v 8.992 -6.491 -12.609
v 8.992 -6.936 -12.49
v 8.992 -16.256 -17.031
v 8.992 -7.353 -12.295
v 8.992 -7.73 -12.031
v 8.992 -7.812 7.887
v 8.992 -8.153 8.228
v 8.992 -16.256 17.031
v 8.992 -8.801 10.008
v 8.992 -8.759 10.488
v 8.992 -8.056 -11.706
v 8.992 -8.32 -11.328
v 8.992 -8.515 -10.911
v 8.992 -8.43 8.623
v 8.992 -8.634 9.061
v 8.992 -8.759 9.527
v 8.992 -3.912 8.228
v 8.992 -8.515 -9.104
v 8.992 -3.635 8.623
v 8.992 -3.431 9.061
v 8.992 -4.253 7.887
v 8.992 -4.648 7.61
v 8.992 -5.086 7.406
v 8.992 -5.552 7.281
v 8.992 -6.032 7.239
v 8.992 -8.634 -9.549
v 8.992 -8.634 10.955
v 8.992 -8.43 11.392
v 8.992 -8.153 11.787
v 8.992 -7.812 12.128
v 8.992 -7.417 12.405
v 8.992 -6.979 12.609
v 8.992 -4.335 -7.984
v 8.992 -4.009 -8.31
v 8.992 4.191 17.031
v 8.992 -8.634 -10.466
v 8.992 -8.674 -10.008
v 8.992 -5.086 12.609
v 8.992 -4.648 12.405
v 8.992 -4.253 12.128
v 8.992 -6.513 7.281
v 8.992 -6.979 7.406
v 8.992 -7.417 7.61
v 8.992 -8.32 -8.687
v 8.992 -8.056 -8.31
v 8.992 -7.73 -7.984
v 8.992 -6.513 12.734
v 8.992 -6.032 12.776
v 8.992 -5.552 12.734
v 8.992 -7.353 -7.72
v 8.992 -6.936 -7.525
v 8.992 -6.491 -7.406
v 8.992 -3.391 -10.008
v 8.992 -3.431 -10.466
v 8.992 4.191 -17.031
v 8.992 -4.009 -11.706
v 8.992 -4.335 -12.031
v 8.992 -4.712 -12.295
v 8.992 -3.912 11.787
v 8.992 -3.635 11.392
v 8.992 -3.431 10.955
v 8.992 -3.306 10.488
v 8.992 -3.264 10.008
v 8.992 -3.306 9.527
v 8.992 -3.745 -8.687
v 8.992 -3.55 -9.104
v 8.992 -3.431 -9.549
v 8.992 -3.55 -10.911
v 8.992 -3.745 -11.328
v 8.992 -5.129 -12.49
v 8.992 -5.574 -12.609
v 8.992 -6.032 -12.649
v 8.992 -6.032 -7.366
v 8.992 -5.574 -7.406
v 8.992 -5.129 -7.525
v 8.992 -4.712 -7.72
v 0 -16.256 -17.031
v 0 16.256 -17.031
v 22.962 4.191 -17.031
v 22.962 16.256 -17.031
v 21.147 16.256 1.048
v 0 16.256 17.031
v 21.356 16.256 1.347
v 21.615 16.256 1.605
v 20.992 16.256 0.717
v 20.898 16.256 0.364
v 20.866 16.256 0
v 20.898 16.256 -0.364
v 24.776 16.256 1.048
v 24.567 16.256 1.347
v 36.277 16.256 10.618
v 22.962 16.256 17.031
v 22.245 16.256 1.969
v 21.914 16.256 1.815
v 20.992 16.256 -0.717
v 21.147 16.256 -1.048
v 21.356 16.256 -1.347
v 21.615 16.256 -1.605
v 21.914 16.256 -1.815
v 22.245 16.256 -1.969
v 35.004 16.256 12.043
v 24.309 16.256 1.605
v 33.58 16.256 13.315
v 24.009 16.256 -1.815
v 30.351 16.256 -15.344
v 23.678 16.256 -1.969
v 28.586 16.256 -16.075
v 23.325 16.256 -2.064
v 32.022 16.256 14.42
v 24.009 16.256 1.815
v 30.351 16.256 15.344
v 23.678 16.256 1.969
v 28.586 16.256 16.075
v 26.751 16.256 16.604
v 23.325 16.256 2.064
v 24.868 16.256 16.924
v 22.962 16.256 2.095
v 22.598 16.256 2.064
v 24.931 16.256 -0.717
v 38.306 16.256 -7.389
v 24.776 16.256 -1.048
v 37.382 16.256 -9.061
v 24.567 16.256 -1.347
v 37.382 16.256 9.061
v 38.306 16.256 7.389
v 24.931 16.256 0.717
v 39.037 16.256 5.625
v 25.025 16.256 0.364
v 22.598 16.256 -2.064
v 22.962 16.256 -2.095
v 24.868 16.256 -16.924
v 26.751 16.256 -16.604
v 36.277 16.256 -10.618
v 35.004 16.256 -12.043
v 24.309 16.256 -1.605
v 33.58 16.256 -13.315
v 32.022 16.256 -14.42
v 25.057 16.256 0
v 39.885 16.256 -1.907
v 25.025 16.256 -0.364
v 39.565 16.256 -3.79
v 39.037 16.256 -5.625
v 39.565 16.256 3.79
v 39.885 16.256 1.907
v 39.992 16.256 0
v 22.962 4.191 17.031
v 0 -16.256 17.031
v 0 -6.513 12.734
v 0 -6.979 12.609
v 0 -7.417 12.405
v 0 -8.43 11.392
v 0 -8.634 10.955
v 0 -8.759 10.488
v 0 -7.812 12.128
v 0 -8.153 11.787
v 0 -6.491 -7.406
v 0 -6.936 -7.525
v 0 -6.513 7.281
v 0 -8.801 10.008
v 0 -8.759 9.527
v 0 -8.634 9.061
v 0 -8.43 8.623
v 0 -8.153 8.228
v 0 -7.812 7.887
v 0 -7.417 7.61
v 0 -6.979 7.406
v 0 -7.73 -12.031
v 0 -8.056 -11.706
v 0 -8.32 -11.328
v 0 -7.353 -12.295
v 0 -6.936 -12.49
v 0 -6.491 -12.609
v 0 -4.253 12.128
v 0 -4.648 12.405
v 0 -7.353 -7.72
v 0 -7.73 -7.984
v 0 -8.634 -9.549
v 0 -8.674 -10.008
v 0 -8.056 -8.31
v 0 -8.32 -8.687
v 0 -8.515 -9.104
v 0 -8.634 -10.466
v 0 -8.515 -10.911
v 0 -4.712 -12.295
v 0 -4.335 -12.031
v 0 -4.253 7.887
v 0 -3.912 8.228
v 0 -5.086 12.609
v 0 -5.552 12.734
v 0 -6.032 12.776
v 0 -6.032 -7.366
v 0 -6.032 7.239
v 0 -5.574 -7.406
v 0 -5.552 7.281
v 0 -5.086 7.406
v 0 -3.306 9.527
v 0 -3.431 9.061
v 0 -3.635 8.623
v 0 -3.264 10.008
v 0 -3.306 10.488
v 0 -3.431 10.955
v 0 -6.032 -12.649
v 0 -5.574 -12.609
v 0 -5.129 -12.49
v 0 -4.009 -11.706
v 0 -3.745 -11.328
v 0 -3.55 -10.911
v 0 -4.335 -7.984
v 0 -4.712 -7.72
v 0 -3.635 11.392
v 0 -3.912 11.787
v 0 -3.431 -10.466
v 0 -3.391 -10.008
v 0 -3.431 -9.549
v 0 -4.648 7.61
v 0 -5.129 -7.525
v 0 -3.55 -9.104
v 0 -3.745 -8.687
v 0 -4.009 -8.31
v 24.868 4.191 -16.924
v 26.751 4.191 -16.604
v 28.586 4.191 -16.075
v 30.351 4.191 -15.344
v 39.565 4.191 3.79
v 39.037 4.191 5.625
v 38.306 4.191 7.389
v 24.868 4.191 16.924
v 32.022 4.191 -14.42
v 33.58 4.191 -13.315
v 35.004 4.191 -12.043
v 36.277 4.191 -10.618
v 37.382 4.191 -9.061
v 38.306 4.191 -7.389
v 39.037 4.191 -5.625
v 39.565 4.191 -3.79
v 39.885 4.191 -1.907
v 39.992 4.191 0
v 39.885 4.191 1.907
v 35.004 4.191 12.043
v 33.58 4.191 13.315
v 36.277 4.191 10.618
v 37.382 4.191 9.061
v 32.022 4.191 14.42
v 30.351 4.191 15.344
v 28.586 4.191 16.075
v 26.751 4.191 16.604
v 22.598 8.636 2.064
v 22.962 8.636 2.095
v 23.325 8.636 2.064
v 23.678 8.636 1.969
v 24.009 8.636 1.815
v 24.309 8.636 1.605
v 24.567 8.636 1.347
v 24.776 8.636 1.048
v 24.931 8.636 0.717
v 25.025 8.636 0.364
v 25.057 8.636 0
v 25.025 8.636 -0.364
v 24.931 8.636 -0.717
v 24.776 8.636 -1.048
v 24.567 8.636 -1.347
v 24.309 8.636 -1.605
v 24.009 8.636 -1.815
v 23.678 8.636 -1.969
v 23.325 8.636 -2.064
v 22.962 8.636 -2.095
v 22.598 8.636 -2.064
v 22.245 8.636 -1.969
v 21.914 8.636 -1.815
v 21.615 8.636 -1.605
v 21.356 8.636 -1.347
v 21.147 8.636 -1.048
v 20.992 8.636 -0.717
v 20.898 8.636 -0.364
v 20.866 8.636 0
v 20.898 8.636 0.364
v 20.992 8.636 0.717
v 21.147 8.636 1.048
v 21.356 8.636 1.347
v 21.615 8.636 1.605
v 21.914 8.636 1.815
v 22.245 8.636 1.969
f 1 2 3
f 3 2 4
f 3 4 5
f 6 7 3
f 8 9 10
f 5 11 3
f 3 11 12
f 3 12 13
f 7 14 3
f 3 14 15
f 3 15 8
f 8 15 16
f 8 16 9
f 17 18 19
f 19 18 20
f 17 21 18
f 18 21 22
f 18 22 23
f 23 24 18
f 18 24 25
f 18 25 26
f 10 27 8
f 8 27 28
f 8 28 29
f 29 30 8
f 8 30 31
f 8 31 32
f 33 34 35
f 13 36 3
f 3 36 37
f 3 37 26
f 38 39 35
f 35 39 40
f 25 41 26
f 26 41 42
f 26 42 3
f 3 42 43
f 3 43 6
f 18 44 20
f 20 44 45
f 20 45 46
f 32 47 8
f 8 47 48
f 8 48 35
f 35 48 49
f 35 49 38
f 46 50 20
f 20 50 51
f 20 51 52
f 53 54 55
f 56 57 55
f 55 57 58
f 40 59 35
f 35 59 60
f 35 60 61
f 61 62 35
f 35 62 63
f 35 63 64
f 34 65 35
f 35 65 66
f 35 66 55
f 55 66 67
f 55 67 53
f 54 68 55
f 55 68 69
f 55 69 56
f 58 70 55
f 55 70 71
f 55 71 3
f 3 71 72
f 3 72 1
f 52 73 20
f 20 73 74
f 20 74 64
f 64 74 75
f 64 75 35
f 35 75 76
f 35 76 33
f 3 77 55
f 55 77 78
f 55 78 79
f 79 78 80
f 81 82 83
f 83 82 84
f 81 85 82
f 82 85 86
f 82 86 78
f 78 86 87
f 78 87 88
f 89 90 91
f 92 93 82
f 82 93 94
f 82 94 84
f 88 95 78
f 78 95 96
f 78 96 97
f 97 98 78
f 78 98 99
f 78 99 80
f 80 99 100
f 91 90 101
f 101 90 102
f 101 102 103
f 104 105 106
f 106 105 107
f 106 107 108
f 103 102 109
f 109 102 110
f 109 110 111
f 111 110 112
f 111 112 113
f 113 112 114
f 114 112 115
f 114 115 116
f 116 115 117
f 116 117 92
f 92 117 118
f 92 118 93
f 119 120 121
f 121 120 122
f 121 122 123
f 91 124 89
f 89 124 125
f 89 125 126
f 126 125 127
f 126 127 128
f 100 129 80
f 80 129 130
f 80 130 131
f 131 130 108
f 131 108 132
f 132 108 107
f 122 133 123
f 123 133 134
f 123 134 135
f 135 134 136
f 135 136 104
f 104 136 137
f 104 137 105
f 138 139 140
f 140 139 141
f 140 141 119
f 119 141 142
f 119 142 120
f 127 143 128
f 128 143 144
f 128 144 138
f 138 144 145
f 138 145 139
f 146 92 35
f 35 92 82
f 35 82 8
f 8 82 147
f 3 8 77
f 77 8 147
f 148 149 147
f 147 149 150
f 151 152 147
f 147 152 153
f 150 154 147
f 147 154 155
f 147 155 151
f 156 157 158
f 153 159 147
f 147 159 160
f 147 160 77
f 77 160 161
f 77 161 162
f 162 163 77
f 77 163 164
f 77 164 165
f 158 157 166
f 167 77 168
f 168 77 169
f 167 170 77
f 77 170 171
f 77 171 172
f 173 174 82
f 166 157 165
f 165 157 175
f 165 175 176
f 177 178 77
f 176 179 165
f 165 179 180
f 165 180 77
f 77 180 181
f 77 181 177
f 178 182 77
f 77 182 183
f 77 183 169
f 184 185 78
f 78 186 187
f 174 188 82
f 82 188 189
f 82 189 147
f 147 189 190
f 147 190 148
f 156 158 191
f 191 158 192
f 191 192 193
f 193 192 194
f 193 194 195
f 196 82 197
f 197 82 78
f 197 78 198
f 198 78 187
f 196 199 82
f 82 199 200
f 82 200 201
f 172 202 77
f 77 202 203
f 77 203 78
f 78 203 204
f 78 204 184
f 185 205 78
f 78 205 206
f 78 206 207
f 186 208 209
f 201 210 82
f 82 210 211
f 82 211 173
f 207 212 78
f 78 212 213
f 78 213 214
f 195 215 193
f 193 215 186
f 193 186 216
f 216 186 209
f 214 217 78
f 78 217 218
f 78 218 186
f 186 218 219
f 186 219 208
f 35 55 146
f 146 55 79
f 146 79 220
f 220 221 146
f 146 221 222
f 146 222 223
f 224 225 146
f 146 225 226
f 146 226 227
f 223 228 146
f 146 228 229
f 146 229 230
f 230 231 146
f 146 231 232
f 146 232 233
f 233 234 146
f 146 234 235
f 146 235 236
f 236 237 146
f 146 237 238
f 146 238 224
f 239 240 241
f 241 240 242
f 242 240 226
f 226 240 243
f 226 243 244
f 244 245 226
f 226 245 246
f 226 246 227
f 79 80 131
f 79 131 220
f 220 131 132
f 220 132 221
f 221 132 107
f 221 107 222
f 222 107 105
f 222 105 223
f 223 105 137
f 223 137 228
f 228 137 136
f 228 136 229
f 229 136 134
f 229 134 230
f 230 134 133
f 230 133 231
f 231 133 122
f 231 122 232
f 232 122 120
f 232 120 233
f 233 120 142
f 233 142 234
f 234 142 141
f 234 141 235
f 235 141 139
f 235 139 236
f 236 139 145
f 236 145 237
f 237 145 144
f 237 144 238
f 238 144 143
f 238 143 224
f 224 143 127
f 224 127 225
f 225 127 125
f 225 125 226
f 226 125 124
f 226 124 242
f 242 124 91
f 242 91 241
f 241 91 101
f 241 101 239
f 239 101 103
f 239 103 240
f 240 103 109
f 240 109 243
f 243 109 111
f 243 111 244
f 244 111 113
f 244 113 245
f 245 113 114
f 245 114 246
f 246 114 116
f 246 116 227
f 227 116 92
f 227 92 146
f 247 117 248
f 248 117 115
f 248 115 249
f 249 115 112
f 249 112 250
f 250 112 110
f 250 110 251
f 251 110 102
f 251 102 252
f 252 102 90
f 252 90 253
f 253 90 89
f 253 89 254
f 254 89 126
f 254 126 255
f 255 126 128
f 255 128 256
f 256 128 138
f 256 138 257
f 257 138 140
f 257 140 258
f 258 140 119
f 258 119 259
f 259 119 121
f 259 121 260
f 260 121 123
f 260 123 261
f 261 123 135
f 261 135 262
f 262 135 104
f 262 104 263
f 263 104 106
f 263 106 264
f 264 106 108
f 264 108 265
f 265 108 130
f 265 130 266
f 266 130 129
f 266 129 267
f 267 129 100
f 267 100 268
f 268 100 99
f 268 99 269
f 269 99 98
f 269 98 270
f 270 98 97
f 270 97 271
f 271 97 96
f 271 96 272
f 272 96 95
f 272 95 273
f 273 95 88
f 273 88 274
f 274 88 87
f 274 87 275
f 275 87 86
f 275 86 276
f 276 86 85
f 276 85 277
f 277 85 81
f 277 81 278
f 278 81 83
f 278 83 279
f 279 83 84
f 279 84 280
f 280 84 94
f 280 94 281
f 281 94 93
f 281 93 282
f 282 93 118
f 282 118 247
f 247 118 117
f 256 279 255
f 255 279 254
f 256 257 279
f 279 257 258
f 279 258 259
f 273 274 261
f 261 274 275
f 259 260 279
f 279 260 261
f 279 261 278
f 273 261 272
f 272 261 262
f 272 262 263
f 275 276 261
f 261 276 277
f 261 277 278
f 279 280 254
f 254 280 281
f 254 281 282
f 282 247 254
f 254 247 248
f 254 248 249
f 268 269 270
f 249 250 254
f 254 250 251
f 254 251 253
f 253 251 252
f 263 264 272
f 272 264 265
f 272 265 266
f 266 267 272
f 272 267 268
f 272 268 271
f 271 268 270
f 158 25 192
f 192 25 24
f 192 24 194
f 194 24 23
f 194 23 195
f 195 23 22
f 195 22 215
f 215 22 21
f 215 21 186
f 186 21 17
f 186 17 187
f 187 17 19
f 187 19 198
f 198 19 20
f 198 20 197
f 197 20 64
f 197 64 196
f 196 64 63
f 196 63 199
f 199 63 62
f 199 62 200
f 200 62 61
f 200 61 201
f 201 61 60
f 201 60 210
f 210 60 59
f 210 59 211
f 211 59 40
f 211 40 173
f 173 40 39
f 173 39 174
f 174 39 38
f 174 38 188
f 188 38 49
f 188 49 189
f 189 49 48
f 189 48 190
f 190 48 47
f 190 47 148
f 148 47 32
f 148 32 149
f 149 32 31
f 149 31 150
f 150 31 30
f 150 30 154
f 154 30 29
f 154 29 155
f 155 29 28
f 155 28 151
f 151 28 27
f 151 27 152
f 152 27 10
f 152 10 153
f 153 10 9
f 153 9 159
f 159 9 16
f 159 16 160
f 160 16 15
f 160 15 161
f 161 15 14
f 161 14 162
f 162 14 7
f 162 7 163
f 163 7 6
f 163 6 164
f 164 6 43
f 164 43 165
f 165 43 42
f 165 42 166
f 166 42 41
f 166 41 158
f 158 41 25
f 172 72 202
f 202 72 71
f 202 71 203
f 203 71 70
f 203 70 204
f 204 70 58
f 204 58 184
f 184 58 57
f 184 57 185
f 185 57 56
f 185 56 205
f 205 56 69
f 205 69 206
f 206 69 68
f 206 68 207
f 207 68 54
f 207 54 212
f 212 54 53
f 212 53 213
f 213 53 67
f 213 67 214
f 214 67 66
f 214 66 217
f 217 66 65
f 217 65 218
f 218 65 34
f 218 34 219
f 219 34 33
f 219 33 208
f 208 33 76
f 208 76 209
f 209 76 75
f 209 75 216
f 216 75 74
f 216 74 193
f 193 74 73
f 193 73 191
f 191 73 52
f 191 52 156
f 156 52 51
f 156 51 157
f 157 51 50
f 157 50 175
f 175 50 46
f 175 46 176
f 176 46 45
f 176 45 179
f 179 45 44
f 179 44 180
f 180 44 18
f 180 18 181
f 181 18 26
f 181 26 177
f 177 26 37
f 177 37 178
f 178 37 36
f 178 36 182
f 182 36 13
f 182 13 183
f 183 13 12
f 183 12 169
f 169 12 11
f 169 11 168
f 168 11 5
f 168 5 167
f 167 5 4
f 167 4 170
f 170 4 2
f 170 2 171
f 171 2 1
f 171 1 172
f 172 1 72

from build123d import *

# Parameters (mm, degrees)
SKETCH1_W           = 34.0614
SKETCH1_H           = 32.512
BOSS_EXTRUDE1_DEPTH = 8.9916
SKETCH2_W           = 34.0614
SKETCH2_H           = 12.065
BOSS_EXTRUDE2_DEPTH = 13.97
SKETCH3_W           = 17.0307
SKETCH3_H           = 12.065
REVOLVE1_ANGLE      = 180
SKETCH4_R           = 2.0955
CUT_EXTRUDE1_DEPTH  = 7.62
CUT_EXTRUDE2_REACH  = 10.992
SKETCH5_R           = 2.7686
SKETCH5_R_2         = 2.6416


with BuildPart() as part:
    # Sketch1 → Boss-Extrude1 (new body)
    with BuildSketch(Plane(origin=(0, 0, 0), x_dir=(0, 0, -1), z_dir=(1, 0, 0))):
        Rectangle(SKETCH1_W, SKETCH1_H)
    extrude(amount=BOSS_EXTRUDE1_DEPTH)

    # Sketch2 → Boss-Extrude2 (add)
    with BuildSketch(Plane(origin=(8.9916, 0, 0), x_dir=(0, 0, -1), z_dir=(1, 0, 0))):
        with Locations((0, 10.2235)):
            Rectangle(SKETCH2_W, SKETCH2_H)
    extrude(amount=BOSS_EXTRUDE2_DEPTH)

    # Sketch3 → Revolve1 (revolve)
    with BuildSketch(Plane(origin=(22.9616, 0, 0), x_dir=(0, 0, -1), z_dir=(1, 0, 0))):
        with Locations((8.51535, 10.2235)):
            Rectangle(SKETCH3_W, SKETCH3_H)
    revolve(axis=Axis((22.9616, 16.256, 0), (0, -1, 0)), revolution_arc=REVOLVE1_ANGLE)

    # Sketch4 → Cut-Extrude1 (cut)
    with BuildSketch(Plane(origin=(0, 16.256, 0), x_dir=(1, 0, 0), z_dir=(0, 1, 0))):
        with Locations((22.9616, 0)):
            Circle(SKETCH4_R)
    extrude(amount=-CUT_EXTRUDE1_DEPTH, mode=Mode.SUBTRACT)

    # Sketch5 → Cut-Extrude2 (cut, up to next)
    with BuildSketch(Plane(origin=(8.9916, 0, 0), x_dir=(0, 0, -1), z_dir=(1, 0, 0)), mode=Mode.PRIVATE) as cut_extrude2_sk1:
        with Locations((-10.0076, -6.0325)):
            Circle(SKETCH5_R)
    cut_extrude2_tool1 = extrude(cut_extrude2_sk1.sketch, amount=-CUT_EXTRUDE2_REACH, mode=Mode.PRIVATE) & part.part
    add(cut_extrude2_tool1.solids().sort_by_distance((8.9916, -6.0325, 10.0076))[0], mode=Mode.SUBTRACT)
    # Sketch5 → Cut-Extrude2 (cut, up to next)
    with BuildSketch(Plane(origin=(8.9916, 0, 0), x_dir=(0, 0, -1), z_dir=(1, 0, 0)), mode=Mode.PRIVATE) as cut_extrude2_sk2:
        with Locations((10.0076, -6.0325)):
            Circle(SKETCH5_R_2)
    cut_extrude2_tool2 = extrude(cut_extrude2_sk2.sketch, amount=-CUT_EXTRUDE2_REACH, mode=Mode.PRIVATE) & part.part
    add(cut_extrude2_tool2.solids().sort_by_distance((8.9916, -6.0325, -10.0076))[0], mode=Mode.SUBTRACT)


solid = part.part
